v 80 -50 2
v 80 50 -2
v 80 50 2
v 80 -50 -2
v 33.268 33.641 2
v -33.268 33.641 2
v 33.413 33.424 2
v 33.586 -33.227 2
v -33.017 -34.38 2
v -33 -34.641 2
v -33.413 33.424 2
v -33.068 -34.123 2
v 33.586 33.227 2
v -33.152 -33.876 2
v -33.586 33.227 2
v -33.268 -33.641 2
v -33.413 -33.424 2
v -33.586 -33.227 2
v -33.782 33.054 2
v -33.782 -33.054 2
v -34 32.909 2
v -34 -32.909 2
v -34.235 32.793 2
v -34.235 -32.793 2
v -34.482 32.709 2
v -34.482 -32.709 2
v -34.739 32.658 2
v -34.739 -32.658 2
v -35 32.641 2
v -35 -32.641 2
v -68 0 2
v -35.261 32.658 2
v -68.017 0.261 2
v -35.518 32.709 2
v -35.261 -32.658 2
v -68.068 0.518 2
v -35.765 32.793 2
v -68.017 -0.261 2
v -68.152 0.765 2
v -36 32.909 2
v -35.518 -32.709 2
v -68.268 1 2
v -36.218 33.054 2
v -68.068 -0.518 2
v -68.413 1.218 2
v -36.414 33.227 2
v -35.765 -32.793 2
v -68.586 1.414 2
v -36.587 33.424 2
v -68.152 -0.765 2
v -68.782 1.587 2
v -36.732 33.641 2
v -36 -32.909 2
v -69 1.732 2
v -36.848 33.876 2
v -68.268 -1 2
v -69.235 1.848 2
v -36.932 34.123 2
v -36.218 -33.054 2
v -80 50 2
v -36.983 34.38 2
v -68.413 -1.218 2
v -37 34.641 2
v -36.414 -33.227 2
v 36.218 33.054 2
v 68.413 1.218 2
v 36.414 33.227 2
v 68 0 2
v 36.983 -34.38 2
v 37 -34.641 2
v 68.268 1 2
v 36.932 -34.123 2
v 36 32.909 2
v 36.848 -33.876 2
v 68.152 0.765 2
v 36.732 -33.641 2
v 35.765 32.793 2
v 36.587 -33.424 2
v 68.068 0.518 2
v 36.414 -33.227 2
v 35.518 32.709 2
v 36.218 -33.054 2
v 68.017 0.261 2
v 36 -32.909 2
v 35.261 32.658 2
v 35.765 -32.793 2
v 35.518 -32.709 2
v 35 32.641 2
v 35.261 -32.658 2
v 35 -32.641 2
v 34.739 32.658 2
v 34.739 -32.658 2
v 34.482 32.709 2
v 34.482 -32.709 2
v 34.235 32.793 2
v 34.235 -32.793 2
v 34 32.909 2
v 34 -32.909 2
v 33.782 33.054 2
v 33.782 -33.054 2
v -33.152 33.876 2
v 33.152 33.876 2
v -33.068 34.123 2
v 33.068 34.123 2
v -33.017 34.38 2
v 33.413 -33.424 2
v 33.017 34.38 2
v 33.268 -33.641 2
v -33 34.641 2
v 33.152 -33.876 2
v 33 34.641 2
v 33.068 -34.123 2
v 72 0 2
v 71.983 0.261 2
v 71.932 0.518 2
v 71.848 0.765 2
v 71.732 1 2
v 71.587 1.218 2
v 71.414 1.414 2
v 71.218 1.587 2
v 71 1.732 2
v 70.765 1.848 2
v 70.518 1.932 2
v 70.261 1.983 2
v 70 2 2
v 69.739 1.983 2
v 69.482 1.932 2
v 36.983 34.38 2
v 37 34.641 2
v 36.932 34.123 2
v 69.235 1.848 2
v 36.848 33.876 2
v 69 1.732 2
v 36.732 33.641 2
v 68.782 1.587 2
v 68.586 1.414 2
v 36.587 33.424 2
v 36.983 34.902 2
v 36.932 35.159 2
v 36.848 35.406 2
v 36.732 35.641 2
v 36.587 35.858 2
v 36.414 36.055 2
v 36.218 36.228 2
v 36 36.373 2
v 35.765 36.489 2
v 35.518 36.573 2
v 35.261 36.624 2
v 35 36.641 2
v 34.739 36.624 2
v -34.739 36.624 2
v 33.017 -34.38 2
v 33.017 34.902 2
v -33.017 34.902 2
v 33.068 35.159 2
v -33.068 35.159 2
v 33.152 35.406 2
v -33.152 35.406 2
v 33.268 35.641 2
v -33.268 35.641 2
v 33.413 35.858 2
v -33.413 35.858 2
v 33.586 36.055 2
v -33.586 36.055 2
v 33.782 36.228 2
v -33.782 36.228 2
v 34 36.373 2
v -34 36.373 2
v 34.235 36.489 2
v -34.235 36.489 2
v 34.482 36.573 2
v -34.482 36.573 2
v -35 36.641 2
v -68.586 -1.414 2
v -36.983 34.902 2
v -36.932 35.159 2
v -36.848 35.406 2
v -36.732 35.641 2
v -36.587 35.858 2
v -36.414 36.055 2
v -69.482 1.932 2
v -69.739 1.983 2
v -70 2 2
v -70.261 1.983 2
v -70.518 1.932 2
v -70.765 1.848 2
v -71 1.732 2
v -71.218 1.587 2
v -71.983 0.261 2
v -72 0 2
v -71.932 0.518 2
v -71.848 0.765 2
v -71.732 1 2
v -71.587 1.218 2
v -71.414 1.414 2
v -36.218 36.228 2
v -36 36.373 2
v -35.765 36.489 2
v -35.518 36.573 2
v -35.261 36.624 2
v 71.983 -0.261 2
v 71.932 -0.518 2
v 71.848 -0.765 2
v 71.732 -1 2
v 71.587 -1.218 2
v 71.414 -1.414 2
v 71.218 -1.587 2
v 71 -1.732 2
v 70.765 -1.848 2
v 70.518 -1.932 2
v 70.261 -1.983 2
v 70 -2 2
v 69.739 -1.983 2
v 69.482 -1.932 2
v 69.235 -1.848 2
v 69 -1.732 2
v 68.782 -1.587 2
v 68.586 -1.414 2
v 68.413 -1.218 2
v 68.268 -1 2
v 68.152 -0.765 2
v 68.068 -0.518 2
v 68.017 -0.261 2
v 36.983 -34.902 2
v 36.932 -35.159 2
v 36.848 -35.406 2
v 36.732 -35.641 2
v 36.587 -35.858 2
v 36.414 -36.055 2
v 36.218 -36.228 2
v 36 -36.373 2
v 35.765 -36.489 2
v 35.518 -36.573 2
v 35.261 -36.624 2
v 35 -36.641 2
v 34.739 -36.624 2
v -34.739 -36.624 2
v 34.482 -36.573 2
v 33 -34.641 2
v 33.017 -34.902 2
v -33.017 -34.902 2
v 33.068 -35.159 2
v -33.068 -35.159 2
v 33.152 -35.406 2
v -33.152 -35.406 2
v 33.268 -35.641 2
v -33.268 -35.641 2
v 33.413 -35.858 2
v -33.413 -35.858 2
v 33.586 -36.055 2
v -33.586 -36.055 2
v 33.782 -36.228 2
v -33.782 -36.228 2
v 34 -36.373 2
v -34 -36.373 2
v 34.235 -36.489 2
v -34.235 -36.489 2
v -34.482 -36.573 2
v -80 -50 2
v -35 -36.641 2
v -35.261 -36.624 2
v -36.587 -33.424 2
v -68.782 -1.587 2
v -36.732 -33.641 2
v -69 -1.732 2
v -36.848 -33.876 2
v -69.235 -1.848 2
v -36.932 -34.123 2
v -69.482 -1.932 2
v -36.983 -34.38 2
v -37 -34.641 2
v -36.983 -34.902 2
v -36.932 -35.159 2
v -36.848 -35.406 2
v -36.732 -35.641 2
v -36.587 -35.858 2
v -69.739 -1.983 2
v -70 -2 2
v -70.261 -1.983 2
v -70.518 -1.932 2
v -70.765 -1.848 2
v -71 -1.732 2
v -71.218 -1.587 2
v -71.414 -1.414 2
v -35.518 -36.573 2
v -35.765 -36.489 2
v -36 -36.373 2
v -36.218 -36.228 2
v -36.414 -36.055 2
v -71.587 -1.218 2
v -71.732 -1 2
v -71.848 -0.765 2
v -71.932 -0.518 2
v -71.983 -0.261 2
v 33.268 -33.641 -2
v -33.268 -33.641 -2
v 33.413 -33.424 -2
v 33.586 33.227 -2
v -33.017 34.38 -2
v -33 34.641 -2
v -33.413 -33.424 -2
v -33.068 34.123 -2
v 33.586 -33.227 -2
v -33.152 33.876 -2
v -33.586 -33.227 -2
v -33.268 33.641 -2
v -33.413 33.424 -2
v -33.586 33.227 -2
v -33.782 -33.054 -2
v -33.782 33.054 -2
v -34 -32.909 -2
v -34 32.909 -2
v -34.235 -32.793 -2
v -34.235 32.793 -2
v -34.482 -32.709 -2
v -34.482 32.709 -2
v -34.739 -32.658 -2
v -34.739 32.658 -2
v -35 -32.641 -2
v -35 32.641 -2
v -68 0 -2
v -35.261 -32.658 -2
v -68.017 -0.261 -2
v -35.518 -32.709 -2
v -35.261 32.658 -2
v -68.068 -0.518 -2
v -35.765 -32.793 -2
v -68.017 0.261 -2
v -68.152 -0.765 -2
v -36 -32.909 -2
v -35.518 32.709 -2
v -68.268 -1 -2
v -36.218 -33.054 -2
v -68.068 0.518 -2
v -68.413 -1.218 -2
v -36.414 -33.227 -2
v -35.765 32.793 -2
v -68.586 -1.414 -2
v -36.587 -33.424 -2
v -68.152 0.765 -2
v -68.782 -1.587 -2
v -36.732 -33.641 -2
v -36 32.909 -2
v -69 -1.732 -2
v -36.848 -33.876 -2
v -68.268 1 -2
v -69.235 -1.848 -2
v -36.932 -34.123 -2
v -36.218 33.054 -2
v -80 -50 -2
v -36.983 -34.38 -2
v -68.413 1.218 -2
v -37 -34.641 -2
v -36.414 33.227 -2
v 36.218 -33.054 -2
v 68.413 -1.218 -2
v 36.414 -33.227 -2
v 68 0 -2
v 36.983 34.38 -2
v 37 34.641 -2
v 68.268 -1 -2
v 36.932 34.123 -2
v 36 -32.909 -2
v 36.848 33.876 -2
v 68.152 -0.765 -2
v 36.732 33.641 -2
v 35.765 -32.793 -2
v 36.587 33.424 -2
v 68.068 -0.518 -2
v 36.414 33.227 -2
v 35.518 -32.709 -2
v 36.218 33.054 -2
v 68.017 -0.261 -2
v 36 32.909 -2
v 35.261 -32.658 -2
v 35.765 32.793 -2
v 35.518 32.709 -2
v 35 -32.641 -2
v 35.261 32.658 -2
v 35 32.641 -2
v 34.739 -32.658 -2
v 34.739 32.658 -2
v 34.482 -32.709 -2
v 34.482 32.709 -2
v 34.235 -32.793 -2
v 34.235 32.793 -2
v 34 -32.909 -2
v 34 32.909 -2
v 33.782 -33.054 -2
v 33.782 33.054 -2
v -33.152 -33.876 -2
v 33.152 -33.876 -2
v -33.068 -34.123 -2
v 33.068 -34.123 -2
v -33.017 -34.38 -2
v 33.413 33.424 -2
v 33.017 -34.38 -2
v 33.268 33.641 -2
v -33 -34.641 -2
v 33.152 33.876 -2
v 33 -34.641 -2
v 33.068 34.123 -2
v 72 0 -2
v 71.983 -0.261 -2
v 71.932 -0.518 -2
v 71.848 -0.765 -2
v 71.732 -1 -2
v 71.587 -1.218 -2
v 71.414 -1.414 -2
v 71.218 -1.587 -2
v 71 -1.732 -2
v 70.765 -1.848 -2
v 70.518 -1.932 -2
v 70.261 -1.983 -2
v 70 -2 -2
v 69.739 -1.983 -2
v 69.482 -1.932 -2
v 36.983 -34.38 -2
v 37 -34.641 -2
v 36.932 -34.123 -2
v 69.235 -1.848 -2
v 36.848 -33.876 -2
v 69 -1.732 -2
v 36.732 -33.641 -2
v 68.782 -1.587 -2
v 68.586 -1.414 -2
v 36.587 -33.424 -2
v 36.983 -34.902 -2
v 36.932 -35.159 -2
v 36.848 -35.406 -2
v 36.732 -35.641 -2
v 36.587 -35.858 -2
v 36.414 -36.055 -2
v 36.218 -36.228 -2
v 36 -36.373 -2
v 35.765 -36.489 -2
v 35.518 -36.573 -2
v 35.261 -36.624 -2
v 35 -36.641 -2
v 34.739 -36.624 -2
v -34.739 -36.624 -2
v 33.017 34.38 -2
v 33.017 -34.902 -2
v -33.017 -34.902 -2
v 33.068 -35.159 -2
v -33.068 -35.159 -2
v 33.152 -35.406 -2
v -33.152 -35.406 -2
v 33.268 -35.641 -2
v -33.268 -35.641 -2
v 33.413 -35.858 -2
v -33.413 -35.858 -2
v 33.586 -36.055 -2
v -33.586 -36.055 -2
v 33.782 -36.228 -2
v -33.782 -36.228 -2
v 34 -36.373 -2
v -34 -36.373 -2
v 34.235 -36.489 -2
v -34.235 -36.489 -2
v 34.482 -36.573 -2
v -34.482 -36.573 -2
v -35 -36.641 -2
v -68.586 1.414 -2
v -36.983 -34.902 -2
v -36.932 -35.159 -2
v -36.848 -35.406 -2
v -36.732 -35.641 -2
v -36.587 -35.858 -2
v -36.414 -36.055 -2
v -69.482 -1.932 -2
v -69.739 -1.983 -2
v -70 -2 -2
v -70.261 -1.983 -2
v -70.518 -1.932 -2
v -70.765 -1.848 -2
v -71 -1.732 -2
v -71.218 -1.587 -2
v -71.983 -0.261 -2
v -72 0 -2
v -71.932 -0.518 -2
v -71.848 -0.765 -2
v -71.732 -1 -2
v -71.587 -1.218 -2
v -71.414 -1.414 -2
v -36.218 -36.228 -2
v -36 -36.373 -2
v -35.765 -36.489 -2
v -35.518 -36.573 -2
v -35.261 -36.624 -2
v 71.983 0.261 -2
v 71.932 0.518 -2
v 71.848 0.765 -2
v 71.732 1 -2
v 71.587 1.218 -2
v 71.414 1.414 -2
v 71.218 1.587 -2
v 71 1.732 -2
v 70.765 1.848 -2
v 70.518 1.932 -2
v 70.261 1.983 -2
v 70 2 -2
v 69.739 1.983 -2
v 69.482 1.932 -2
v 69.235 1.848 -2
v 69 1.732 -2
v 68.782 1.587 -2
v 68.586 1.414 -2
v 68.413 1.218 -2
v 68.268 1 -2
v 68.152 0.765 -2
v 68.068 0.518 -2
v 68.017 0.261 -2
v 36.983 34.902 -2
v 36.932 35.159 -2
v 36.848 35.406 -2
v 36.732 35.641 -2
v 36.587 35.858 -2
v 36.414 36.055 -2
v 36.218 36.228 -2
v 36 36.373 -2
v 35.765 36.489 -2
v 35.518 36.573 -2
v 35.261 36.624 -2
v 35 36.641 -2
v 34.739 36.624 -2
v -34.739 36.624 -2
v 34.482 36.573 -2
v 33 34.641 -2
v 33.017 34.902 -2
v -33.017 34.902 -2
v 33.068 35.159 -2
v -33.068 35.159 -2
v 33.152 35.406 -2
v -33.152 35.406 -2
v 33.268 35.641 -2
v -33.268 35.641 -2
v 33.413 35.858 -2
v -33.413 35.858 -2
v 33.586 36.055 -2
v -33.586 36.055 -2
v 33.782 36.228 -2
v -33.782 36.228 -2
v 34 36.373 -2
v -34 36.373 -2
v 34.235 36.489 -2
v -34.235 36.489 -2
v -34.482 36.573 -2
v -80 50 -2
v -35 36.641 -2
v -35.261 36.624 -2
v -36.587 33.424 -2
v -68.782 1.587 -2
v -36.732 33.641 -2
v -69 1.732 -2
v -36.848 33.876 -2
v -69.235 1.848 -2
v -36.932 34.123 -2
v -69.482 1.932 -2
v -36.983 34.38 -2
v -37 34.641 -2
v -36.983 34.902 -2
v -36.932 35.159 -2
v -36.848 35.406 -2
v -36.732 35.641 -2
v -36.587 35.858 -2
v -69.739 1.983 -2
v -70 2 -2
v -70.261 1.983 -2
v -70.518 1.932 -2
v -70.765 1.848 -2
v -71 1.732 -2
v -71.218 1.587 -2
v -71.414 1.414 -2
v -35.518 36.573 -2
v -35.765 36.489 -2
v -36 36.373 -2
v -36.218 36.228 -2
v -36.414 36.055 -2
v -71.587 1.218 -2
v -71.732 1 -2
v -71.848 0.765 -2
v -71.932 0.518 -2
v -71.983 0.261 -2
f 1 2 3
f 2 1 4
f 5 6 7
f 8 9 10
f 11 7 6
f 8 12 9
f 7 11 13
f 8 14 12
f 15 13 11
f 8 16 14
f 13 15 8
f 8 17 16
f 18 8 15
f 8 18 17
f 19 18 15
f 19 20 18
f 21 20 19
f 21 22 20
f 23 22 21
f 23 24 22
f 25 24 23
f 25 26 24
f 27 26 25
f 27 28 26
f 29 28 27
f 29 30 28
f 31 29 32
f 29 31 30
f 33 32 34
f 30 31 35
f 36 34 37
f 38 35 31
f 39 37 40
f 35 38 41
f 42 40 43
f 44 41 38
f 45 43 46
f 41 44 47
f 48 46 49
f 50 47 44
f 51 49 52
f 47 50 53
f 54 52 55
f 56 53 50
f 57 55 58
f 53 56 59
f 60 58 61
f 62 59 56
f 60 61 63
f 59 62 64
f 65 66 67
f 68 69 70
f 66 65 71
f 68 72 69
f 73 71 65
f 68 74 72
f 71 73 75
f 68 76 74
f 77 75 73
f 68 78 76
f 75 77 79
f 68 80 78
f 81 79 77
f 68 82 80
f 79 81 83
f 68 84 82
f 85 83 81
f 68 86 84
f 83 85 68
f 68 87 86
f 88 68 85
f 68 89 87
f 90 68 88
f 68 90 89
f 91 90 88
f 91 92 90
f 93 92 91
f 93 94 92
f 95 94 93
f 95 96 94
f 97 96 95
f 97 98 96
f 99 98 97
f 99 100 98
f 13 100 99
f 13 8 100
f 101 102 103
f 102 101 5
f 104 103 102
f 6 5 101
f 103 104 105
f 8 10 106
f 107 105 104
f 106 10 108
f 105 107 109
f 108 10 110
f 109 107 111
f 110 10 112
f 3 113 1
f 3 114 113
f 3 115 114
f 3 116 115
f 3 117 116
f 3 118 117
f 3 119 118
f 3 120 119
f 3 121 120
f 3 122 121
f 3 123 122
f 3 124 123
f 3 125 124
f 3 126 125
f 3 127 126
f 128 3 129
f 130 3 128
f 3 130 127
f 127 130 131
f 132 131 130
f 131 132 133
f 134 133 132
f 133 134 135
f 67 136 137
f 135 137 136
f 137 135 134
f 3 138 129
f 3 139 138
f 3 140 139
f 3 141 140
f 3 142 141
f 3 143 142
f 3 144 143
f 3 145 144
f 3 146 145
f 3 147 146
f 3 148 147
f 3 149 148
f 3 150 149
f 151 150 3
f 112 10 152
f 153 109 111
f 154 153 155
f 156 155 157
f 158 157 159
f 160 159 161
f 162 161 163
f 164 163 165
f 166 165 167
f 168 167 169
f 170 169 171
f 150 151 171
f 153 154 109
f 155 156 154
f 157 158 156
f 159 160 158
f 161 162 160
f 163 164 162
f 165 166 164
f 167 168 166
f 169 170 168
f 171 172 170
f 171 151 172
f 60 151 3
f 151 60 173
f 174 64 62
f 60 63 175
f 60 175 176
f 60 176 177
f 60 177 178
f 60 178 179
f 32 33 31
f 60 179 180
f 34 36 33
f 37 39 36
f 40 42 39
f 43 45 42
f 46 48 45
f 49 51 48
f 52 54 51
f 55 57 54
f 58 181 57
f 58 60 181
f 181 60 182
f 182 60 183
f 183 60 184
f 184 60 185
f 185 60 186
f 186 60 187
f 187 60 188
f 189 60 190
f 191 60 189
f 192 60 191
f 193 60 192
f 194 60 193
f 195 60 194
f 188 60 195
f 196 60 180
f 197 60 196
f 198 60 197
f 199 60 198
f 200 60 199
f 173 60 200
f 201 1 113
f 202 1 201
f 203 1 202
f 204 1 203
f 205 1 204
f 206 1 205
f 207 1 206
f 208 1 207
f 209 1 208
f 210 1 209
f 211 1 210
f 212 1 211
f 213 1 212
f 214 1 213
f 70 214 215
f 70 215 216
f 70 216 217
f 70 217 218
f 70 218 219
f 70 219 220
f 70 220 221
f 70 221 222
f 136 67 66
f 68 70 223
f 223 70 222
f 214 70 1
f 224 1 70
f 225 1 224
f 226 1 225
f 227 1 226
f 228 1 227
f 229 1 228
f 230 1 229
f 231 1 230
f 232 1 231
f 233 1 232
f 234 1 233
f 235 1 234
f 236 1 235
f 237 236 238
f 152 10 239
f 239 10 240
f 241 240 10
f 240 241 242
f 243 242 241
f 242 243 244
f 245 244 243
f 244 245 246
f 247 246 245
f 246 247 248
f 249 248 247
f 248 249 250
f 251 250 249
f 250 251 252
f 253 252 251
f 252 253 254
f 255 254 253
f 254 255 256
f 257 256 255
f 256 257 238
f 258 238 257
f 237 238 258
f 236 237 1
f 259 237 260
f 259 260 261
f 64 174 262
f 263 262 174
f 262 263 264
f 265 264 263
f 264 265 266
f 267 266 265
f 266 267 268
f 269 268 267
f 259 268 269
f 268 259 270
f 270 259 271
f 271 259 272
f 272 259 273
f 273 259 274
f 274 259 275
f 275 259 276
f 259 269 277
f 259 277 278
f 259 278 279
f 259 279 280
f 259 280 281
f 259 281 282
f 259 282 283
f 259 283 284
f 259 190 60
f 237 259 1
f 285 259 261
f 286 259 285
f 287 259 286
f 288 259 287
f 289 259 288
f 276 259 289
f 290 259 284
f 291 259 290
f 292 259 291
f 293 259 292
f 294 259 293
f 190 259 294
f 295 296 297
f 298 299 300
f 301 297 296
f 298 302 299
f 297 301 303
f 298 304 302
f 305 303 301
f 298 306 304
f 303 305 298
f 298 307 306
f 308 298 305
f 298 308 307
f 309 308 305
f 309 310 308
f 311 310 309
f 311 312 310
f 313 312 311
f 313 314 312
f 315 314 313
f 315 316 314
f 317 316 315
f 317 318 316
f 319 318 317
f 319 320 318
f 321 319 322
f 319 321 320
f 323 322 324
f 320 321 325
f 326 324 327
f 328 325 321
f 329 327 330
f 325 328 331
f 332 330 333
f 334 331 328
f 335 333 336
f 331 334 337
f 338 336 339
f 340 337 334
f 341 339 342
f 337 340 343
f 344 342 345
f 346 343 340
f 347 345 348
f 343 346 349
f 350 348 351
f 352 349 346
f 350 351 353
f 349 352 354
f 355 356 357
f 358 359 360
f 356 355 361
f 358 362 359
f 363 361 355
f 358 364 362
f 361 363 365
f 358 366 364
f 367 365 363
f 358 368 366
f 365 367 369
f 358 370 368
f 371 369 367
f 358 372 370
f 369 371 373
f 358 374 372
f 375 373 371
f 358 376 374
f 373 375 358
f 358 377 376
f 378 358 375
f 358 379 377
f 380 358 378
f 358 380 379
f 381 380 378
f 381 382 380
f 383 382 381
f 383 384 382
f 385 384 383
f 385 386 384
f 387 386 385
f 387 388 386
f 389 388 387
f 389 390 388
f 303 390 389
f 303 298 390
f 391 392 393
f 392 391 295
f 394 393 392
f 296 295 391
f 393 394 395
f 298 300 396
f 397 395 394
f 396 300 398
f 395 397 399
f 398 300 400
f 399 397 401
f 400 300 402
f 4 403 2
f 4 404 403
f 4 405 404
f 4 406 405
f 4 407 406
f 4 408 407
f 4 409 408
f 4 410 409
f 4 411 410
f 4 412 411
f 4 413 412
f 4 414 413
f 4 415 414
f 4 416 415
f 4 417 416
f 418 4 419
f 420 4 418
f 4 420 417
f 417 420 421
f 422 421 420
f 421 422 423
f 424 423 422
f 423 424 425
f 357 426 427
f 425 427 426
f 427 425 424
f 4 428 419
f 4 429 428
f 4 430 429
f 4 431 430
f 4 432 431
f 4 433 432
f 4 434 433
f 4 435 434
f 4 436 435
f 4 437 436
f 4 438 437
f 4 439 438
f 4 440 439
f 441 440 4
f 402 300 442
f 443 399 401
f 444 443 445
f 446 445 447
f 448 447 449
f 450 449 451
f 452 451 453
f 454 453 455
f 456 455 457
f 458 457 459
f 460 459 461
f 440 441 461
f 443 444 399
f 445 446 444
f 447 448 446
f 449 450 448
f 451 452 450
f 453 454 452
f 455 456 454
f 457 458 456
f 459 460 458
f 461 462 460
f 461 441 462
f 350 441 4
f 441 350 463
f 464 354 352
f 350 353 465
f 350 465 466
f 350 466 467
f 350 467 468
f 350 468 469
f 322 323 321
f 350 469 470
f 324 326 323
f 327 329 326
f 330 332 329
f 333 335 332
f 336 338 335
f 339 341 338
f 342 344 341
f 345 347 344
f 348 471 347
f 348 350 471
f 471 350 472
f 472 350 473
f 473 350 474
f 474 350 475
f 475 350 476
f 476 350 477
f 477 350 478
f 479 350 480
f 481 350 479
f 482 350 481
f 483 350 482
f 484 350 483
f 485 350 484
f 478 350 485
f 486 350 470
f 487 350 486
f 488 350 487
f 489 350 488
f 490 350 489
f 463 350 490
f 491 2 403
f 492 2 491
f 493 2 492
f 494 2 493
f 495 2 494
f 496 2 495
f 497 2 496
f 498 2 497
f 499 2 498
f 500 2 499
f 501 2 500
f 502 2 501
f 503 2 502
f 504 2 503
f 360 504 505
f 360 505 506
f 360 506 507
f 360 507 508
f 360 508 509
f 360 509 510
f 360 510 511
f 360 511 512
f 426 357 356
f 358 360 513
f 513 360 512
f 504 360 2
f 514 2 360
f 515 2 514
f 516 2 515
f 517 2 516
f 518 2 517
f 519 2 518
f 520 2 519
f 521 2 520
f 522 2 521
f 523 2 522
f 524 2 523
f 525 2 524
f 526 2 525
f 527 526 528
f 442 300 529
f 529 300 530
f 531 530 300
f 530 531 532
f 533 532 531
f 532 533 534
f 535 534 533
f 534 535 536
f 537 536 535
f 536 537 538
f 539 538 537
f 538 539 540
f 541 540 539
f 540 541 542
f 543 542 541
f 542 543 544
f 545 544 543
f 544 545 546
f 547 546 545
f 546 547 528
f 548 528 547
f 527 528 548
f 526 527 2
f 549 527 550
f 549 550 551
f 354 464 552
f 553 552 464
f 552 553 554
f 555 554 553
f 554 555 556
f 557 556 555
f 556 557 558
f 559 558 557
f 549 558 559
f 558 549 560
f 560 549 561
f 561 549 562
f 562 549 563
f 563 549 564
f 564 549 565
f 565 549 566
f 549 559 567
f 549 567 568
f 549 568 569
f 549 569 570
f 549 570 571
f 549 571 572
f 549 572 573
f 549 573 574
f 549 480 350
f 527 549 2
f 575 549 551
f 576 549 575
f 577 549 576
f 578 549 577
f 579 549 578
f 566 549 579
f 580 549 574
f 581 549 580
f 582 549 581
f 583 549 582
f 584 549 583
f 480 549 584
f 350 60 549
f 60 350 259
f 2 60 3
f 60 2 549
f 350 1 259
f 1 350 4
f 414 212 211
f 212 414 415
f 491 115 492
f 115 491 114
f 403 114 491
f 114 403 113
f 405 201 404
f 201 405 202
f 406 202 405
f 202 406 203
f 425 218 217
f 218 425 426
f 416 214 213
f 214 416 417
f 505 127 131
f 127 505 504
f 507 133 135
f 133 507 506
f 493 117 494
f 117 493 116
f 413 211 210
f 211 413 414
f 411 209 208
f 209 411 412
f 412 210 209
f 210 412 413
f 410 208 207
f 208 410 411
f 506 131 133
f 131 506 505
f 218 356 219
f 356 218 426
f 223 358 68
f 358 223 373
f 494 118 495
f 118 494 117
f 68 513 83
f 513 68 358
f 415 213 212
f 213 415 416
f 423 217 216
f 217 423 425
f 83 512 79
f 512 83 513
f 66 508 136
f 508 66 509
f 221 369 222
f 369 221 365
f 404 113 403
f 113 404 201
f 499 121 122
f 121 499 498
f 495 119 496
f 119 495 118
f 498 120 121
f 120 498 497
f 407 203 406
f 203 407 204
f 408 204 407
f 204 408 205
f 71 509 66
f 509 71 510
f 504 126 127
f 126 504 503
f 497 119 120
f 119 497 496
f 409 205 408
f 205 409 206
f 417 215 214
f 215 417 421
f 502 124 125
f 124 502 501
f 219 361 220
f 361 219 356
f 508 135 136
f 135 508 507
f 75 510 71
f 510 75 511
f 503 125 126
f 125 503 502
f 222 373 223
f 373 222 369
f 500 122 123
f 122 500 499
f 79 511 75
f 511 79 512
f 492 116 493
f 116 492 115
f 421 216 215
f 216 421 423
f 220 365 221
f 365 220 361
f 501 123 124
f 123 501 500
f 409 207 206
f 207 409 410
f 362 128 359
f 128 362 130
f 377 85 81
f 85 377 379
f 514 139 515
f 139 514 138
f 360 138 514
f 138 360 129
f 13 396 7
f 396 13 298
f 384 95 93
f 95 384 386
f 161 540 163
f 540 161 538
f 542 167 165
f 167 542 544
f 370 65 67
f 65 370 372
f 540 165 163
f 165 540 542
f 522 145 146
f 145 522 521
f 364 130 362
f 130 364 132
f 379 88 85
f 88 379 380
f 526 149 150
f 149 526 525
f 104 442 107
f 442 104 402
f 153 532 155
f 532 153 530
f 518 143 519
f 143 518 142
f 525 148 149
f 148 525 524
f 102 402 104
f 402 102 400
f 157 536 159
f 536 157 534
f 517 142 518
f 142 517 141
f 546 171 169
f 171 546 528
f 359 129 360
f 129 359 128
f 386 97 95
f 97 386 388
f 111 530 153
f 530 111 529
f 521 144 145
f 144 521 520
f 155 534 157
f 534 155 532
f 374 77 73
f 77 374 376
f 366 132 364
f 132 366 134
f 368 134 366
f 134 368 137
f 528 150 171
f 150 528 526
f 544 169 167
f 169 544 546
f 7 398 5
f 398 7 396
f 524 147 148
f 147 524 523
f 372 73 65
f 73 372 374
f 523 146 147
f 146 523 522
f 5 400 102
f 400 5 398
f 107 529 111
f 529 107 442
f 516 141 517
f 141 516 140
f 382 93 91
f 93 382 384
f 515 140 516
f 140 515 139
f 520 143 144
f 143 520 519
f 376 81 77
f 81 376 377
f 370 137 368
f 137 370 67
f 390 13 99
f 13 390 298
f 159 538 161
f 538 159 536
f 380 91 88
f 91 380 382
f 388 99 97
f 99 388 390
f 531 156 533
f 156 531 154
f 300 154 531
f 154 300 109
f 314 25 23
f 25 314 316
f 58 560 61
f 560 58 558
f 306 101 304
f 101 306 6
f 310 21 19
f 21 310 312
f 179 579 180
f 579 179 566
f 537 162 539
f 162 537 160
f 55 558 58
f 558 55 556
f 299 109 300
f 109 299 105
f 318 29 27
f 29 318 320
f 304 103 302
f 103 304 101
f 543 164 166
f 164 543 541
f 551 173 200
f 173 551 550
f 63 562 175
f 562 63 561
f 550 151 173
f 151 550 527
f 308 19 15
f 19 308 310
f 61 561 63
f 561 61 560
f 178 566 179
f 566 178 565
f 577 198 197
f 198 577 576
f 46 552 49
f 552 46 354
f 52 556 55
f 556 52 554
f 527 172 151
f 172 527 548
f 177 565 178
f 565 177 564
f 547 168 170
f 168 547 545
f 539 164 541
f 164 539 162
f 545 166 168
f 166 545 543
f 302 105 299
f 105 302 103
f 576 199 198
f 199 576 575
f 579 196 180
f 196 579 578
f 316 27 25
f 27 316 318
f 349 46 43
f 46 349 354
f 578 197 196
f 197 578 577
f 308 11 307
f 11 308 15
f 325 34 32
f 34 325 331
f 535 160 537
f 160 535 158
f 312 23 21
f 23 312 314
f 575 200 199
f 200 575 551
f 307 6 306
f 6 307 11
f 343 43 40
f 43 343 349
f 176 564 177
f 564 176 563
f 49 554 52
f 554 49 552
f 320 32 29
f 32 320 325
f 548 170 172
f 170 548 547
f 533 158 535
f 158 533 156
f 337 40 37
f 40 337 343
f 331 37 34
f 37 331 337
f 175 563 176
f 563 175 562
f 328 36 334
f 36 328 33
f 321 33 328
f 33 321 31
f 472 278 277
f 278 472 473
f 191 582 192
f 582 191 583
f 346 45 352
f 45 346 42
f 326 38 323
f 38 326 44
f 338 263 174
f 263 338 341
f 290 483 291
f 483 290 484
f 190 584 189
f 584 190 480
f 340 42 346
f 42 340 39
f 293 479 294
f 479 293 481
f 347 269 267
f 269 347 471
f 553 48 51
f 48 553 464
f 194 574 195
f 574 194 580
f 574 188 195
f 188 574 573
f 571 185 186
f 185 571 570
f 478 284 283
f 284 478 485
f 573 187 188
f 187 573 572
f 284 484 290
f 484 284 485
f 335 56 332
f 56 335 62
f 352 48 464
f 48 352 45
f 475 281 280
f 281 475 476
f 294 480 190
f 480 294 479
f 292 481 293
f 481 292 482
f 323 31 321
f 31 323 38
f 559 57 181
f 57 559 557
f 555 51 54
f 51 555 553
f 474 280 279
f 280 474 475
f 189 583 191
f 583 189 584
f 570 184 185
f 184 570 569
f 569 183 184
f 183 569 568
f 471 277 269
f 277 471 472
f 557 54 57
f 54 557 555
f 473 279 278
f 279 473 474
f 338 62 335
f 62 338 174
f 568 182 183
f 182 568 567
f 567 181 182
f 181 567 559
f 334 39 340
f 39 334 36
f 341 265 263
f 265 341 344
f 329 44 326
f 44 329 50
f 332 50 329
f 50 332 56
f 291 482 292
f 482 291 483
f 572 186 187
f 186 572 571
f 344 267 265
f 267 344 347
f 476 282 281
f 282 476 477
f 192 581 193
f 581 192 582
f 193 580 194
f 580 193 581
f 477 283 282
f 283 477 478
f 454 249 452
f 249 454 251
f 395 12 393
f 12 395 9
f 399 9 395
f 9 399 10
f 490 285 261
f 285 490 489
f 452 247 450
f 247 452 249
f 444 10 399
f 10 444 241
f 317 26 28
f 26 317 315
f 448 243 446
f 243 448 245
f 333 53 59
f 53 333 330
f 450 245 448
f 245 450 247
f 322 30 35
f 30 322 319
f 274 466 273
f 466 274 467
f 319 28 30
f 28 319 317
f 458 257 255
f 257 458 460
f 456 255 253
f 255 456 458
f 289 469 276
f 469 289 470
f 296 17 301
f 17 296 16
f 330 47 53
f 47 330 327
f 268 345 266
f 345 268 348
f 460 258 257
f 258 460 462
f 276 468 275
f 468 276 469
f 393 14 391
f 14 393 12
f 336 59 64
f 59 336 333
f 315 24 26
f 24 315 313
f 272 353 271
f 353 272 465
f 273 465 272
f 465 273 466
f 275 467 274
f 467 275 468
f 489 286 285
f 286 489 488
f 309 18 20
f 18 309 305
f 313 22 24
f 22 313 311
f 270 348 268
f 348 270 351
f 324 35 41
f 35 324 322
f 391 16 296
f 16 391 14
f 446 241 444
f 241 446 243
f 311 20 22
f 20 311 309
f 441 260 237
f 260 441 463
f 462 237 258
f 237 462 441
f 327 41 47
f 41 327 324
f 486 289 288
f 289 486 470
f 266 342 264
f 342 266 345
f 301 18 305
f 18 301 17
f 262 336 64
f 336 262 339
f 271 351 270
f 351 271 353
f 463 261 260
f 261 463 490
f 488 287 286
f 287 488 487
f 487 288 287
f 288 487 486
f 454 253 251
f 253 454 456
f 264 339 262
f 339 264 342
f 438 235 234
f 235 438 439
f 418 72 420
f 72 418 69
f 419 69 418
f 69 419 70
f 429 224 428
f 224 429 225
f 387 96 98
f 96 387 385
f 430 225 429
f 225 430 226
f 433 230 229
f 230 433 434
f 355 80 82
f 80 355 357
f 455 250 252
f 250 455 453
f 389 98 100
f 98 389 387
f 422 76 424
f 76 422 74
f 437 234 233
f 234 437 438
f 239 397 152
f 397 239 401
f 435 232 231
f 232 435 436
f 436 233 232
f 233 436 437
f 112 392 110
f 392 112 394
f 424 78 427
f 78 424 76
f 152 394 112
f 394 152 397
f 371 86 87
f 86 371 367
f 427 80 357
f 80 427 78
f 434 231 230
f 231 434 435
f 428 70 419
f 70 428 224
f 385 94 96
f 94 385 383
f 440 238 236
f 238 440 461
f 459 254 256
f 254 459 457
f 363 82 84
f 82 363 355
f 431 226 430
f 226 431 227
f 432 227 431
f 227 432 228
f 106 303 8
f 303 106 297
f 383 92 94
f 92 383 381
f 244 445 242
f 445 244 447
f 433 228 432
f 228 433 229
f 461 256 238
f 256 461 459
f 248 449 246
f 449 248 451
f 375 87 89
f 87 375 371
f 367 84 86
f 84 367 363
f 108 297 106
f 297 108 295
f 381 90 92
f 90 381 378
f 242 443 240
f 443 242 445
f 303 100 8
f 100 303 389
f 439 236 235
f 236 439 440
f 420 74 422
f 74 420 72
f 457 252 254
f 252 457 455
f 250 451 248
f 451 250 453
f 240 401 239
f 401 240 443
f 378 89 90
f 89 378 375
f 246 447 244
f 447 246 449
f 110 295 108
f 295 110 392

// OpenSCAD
// ========================================
// a 160 x 100 x 4 mm plate with six 4 mm holes
// NeuroCAD canonical IR; dimensions are millimetres
// ========================================
$fn = 48;

difference() {
  cube(size=[160, 100, 4], center=true);
  translate([70, 0, 0]) {
    cylinder(r=2, h=6, center=true);
  }
  translate([35, 34.6410161513775, 0]) {
    cylinder(r=2, h=6, center=true);
  }
  translate([-35, 34.6410161513775, 0]) {
    cylinder(r=2, h=6, center=true);
  }
  translate([-70, 0, 0]) {
    cylinder(r=2, h=6, center=true);
  }
  translate([-35, -34.6410161513775, 0]) {
    cylinder(r=2, h=6, center=true);
  }
  translate([35, -34.6410161513775, 0]) {
    cylinder(r=2, h=6, center=true);
  }
}
